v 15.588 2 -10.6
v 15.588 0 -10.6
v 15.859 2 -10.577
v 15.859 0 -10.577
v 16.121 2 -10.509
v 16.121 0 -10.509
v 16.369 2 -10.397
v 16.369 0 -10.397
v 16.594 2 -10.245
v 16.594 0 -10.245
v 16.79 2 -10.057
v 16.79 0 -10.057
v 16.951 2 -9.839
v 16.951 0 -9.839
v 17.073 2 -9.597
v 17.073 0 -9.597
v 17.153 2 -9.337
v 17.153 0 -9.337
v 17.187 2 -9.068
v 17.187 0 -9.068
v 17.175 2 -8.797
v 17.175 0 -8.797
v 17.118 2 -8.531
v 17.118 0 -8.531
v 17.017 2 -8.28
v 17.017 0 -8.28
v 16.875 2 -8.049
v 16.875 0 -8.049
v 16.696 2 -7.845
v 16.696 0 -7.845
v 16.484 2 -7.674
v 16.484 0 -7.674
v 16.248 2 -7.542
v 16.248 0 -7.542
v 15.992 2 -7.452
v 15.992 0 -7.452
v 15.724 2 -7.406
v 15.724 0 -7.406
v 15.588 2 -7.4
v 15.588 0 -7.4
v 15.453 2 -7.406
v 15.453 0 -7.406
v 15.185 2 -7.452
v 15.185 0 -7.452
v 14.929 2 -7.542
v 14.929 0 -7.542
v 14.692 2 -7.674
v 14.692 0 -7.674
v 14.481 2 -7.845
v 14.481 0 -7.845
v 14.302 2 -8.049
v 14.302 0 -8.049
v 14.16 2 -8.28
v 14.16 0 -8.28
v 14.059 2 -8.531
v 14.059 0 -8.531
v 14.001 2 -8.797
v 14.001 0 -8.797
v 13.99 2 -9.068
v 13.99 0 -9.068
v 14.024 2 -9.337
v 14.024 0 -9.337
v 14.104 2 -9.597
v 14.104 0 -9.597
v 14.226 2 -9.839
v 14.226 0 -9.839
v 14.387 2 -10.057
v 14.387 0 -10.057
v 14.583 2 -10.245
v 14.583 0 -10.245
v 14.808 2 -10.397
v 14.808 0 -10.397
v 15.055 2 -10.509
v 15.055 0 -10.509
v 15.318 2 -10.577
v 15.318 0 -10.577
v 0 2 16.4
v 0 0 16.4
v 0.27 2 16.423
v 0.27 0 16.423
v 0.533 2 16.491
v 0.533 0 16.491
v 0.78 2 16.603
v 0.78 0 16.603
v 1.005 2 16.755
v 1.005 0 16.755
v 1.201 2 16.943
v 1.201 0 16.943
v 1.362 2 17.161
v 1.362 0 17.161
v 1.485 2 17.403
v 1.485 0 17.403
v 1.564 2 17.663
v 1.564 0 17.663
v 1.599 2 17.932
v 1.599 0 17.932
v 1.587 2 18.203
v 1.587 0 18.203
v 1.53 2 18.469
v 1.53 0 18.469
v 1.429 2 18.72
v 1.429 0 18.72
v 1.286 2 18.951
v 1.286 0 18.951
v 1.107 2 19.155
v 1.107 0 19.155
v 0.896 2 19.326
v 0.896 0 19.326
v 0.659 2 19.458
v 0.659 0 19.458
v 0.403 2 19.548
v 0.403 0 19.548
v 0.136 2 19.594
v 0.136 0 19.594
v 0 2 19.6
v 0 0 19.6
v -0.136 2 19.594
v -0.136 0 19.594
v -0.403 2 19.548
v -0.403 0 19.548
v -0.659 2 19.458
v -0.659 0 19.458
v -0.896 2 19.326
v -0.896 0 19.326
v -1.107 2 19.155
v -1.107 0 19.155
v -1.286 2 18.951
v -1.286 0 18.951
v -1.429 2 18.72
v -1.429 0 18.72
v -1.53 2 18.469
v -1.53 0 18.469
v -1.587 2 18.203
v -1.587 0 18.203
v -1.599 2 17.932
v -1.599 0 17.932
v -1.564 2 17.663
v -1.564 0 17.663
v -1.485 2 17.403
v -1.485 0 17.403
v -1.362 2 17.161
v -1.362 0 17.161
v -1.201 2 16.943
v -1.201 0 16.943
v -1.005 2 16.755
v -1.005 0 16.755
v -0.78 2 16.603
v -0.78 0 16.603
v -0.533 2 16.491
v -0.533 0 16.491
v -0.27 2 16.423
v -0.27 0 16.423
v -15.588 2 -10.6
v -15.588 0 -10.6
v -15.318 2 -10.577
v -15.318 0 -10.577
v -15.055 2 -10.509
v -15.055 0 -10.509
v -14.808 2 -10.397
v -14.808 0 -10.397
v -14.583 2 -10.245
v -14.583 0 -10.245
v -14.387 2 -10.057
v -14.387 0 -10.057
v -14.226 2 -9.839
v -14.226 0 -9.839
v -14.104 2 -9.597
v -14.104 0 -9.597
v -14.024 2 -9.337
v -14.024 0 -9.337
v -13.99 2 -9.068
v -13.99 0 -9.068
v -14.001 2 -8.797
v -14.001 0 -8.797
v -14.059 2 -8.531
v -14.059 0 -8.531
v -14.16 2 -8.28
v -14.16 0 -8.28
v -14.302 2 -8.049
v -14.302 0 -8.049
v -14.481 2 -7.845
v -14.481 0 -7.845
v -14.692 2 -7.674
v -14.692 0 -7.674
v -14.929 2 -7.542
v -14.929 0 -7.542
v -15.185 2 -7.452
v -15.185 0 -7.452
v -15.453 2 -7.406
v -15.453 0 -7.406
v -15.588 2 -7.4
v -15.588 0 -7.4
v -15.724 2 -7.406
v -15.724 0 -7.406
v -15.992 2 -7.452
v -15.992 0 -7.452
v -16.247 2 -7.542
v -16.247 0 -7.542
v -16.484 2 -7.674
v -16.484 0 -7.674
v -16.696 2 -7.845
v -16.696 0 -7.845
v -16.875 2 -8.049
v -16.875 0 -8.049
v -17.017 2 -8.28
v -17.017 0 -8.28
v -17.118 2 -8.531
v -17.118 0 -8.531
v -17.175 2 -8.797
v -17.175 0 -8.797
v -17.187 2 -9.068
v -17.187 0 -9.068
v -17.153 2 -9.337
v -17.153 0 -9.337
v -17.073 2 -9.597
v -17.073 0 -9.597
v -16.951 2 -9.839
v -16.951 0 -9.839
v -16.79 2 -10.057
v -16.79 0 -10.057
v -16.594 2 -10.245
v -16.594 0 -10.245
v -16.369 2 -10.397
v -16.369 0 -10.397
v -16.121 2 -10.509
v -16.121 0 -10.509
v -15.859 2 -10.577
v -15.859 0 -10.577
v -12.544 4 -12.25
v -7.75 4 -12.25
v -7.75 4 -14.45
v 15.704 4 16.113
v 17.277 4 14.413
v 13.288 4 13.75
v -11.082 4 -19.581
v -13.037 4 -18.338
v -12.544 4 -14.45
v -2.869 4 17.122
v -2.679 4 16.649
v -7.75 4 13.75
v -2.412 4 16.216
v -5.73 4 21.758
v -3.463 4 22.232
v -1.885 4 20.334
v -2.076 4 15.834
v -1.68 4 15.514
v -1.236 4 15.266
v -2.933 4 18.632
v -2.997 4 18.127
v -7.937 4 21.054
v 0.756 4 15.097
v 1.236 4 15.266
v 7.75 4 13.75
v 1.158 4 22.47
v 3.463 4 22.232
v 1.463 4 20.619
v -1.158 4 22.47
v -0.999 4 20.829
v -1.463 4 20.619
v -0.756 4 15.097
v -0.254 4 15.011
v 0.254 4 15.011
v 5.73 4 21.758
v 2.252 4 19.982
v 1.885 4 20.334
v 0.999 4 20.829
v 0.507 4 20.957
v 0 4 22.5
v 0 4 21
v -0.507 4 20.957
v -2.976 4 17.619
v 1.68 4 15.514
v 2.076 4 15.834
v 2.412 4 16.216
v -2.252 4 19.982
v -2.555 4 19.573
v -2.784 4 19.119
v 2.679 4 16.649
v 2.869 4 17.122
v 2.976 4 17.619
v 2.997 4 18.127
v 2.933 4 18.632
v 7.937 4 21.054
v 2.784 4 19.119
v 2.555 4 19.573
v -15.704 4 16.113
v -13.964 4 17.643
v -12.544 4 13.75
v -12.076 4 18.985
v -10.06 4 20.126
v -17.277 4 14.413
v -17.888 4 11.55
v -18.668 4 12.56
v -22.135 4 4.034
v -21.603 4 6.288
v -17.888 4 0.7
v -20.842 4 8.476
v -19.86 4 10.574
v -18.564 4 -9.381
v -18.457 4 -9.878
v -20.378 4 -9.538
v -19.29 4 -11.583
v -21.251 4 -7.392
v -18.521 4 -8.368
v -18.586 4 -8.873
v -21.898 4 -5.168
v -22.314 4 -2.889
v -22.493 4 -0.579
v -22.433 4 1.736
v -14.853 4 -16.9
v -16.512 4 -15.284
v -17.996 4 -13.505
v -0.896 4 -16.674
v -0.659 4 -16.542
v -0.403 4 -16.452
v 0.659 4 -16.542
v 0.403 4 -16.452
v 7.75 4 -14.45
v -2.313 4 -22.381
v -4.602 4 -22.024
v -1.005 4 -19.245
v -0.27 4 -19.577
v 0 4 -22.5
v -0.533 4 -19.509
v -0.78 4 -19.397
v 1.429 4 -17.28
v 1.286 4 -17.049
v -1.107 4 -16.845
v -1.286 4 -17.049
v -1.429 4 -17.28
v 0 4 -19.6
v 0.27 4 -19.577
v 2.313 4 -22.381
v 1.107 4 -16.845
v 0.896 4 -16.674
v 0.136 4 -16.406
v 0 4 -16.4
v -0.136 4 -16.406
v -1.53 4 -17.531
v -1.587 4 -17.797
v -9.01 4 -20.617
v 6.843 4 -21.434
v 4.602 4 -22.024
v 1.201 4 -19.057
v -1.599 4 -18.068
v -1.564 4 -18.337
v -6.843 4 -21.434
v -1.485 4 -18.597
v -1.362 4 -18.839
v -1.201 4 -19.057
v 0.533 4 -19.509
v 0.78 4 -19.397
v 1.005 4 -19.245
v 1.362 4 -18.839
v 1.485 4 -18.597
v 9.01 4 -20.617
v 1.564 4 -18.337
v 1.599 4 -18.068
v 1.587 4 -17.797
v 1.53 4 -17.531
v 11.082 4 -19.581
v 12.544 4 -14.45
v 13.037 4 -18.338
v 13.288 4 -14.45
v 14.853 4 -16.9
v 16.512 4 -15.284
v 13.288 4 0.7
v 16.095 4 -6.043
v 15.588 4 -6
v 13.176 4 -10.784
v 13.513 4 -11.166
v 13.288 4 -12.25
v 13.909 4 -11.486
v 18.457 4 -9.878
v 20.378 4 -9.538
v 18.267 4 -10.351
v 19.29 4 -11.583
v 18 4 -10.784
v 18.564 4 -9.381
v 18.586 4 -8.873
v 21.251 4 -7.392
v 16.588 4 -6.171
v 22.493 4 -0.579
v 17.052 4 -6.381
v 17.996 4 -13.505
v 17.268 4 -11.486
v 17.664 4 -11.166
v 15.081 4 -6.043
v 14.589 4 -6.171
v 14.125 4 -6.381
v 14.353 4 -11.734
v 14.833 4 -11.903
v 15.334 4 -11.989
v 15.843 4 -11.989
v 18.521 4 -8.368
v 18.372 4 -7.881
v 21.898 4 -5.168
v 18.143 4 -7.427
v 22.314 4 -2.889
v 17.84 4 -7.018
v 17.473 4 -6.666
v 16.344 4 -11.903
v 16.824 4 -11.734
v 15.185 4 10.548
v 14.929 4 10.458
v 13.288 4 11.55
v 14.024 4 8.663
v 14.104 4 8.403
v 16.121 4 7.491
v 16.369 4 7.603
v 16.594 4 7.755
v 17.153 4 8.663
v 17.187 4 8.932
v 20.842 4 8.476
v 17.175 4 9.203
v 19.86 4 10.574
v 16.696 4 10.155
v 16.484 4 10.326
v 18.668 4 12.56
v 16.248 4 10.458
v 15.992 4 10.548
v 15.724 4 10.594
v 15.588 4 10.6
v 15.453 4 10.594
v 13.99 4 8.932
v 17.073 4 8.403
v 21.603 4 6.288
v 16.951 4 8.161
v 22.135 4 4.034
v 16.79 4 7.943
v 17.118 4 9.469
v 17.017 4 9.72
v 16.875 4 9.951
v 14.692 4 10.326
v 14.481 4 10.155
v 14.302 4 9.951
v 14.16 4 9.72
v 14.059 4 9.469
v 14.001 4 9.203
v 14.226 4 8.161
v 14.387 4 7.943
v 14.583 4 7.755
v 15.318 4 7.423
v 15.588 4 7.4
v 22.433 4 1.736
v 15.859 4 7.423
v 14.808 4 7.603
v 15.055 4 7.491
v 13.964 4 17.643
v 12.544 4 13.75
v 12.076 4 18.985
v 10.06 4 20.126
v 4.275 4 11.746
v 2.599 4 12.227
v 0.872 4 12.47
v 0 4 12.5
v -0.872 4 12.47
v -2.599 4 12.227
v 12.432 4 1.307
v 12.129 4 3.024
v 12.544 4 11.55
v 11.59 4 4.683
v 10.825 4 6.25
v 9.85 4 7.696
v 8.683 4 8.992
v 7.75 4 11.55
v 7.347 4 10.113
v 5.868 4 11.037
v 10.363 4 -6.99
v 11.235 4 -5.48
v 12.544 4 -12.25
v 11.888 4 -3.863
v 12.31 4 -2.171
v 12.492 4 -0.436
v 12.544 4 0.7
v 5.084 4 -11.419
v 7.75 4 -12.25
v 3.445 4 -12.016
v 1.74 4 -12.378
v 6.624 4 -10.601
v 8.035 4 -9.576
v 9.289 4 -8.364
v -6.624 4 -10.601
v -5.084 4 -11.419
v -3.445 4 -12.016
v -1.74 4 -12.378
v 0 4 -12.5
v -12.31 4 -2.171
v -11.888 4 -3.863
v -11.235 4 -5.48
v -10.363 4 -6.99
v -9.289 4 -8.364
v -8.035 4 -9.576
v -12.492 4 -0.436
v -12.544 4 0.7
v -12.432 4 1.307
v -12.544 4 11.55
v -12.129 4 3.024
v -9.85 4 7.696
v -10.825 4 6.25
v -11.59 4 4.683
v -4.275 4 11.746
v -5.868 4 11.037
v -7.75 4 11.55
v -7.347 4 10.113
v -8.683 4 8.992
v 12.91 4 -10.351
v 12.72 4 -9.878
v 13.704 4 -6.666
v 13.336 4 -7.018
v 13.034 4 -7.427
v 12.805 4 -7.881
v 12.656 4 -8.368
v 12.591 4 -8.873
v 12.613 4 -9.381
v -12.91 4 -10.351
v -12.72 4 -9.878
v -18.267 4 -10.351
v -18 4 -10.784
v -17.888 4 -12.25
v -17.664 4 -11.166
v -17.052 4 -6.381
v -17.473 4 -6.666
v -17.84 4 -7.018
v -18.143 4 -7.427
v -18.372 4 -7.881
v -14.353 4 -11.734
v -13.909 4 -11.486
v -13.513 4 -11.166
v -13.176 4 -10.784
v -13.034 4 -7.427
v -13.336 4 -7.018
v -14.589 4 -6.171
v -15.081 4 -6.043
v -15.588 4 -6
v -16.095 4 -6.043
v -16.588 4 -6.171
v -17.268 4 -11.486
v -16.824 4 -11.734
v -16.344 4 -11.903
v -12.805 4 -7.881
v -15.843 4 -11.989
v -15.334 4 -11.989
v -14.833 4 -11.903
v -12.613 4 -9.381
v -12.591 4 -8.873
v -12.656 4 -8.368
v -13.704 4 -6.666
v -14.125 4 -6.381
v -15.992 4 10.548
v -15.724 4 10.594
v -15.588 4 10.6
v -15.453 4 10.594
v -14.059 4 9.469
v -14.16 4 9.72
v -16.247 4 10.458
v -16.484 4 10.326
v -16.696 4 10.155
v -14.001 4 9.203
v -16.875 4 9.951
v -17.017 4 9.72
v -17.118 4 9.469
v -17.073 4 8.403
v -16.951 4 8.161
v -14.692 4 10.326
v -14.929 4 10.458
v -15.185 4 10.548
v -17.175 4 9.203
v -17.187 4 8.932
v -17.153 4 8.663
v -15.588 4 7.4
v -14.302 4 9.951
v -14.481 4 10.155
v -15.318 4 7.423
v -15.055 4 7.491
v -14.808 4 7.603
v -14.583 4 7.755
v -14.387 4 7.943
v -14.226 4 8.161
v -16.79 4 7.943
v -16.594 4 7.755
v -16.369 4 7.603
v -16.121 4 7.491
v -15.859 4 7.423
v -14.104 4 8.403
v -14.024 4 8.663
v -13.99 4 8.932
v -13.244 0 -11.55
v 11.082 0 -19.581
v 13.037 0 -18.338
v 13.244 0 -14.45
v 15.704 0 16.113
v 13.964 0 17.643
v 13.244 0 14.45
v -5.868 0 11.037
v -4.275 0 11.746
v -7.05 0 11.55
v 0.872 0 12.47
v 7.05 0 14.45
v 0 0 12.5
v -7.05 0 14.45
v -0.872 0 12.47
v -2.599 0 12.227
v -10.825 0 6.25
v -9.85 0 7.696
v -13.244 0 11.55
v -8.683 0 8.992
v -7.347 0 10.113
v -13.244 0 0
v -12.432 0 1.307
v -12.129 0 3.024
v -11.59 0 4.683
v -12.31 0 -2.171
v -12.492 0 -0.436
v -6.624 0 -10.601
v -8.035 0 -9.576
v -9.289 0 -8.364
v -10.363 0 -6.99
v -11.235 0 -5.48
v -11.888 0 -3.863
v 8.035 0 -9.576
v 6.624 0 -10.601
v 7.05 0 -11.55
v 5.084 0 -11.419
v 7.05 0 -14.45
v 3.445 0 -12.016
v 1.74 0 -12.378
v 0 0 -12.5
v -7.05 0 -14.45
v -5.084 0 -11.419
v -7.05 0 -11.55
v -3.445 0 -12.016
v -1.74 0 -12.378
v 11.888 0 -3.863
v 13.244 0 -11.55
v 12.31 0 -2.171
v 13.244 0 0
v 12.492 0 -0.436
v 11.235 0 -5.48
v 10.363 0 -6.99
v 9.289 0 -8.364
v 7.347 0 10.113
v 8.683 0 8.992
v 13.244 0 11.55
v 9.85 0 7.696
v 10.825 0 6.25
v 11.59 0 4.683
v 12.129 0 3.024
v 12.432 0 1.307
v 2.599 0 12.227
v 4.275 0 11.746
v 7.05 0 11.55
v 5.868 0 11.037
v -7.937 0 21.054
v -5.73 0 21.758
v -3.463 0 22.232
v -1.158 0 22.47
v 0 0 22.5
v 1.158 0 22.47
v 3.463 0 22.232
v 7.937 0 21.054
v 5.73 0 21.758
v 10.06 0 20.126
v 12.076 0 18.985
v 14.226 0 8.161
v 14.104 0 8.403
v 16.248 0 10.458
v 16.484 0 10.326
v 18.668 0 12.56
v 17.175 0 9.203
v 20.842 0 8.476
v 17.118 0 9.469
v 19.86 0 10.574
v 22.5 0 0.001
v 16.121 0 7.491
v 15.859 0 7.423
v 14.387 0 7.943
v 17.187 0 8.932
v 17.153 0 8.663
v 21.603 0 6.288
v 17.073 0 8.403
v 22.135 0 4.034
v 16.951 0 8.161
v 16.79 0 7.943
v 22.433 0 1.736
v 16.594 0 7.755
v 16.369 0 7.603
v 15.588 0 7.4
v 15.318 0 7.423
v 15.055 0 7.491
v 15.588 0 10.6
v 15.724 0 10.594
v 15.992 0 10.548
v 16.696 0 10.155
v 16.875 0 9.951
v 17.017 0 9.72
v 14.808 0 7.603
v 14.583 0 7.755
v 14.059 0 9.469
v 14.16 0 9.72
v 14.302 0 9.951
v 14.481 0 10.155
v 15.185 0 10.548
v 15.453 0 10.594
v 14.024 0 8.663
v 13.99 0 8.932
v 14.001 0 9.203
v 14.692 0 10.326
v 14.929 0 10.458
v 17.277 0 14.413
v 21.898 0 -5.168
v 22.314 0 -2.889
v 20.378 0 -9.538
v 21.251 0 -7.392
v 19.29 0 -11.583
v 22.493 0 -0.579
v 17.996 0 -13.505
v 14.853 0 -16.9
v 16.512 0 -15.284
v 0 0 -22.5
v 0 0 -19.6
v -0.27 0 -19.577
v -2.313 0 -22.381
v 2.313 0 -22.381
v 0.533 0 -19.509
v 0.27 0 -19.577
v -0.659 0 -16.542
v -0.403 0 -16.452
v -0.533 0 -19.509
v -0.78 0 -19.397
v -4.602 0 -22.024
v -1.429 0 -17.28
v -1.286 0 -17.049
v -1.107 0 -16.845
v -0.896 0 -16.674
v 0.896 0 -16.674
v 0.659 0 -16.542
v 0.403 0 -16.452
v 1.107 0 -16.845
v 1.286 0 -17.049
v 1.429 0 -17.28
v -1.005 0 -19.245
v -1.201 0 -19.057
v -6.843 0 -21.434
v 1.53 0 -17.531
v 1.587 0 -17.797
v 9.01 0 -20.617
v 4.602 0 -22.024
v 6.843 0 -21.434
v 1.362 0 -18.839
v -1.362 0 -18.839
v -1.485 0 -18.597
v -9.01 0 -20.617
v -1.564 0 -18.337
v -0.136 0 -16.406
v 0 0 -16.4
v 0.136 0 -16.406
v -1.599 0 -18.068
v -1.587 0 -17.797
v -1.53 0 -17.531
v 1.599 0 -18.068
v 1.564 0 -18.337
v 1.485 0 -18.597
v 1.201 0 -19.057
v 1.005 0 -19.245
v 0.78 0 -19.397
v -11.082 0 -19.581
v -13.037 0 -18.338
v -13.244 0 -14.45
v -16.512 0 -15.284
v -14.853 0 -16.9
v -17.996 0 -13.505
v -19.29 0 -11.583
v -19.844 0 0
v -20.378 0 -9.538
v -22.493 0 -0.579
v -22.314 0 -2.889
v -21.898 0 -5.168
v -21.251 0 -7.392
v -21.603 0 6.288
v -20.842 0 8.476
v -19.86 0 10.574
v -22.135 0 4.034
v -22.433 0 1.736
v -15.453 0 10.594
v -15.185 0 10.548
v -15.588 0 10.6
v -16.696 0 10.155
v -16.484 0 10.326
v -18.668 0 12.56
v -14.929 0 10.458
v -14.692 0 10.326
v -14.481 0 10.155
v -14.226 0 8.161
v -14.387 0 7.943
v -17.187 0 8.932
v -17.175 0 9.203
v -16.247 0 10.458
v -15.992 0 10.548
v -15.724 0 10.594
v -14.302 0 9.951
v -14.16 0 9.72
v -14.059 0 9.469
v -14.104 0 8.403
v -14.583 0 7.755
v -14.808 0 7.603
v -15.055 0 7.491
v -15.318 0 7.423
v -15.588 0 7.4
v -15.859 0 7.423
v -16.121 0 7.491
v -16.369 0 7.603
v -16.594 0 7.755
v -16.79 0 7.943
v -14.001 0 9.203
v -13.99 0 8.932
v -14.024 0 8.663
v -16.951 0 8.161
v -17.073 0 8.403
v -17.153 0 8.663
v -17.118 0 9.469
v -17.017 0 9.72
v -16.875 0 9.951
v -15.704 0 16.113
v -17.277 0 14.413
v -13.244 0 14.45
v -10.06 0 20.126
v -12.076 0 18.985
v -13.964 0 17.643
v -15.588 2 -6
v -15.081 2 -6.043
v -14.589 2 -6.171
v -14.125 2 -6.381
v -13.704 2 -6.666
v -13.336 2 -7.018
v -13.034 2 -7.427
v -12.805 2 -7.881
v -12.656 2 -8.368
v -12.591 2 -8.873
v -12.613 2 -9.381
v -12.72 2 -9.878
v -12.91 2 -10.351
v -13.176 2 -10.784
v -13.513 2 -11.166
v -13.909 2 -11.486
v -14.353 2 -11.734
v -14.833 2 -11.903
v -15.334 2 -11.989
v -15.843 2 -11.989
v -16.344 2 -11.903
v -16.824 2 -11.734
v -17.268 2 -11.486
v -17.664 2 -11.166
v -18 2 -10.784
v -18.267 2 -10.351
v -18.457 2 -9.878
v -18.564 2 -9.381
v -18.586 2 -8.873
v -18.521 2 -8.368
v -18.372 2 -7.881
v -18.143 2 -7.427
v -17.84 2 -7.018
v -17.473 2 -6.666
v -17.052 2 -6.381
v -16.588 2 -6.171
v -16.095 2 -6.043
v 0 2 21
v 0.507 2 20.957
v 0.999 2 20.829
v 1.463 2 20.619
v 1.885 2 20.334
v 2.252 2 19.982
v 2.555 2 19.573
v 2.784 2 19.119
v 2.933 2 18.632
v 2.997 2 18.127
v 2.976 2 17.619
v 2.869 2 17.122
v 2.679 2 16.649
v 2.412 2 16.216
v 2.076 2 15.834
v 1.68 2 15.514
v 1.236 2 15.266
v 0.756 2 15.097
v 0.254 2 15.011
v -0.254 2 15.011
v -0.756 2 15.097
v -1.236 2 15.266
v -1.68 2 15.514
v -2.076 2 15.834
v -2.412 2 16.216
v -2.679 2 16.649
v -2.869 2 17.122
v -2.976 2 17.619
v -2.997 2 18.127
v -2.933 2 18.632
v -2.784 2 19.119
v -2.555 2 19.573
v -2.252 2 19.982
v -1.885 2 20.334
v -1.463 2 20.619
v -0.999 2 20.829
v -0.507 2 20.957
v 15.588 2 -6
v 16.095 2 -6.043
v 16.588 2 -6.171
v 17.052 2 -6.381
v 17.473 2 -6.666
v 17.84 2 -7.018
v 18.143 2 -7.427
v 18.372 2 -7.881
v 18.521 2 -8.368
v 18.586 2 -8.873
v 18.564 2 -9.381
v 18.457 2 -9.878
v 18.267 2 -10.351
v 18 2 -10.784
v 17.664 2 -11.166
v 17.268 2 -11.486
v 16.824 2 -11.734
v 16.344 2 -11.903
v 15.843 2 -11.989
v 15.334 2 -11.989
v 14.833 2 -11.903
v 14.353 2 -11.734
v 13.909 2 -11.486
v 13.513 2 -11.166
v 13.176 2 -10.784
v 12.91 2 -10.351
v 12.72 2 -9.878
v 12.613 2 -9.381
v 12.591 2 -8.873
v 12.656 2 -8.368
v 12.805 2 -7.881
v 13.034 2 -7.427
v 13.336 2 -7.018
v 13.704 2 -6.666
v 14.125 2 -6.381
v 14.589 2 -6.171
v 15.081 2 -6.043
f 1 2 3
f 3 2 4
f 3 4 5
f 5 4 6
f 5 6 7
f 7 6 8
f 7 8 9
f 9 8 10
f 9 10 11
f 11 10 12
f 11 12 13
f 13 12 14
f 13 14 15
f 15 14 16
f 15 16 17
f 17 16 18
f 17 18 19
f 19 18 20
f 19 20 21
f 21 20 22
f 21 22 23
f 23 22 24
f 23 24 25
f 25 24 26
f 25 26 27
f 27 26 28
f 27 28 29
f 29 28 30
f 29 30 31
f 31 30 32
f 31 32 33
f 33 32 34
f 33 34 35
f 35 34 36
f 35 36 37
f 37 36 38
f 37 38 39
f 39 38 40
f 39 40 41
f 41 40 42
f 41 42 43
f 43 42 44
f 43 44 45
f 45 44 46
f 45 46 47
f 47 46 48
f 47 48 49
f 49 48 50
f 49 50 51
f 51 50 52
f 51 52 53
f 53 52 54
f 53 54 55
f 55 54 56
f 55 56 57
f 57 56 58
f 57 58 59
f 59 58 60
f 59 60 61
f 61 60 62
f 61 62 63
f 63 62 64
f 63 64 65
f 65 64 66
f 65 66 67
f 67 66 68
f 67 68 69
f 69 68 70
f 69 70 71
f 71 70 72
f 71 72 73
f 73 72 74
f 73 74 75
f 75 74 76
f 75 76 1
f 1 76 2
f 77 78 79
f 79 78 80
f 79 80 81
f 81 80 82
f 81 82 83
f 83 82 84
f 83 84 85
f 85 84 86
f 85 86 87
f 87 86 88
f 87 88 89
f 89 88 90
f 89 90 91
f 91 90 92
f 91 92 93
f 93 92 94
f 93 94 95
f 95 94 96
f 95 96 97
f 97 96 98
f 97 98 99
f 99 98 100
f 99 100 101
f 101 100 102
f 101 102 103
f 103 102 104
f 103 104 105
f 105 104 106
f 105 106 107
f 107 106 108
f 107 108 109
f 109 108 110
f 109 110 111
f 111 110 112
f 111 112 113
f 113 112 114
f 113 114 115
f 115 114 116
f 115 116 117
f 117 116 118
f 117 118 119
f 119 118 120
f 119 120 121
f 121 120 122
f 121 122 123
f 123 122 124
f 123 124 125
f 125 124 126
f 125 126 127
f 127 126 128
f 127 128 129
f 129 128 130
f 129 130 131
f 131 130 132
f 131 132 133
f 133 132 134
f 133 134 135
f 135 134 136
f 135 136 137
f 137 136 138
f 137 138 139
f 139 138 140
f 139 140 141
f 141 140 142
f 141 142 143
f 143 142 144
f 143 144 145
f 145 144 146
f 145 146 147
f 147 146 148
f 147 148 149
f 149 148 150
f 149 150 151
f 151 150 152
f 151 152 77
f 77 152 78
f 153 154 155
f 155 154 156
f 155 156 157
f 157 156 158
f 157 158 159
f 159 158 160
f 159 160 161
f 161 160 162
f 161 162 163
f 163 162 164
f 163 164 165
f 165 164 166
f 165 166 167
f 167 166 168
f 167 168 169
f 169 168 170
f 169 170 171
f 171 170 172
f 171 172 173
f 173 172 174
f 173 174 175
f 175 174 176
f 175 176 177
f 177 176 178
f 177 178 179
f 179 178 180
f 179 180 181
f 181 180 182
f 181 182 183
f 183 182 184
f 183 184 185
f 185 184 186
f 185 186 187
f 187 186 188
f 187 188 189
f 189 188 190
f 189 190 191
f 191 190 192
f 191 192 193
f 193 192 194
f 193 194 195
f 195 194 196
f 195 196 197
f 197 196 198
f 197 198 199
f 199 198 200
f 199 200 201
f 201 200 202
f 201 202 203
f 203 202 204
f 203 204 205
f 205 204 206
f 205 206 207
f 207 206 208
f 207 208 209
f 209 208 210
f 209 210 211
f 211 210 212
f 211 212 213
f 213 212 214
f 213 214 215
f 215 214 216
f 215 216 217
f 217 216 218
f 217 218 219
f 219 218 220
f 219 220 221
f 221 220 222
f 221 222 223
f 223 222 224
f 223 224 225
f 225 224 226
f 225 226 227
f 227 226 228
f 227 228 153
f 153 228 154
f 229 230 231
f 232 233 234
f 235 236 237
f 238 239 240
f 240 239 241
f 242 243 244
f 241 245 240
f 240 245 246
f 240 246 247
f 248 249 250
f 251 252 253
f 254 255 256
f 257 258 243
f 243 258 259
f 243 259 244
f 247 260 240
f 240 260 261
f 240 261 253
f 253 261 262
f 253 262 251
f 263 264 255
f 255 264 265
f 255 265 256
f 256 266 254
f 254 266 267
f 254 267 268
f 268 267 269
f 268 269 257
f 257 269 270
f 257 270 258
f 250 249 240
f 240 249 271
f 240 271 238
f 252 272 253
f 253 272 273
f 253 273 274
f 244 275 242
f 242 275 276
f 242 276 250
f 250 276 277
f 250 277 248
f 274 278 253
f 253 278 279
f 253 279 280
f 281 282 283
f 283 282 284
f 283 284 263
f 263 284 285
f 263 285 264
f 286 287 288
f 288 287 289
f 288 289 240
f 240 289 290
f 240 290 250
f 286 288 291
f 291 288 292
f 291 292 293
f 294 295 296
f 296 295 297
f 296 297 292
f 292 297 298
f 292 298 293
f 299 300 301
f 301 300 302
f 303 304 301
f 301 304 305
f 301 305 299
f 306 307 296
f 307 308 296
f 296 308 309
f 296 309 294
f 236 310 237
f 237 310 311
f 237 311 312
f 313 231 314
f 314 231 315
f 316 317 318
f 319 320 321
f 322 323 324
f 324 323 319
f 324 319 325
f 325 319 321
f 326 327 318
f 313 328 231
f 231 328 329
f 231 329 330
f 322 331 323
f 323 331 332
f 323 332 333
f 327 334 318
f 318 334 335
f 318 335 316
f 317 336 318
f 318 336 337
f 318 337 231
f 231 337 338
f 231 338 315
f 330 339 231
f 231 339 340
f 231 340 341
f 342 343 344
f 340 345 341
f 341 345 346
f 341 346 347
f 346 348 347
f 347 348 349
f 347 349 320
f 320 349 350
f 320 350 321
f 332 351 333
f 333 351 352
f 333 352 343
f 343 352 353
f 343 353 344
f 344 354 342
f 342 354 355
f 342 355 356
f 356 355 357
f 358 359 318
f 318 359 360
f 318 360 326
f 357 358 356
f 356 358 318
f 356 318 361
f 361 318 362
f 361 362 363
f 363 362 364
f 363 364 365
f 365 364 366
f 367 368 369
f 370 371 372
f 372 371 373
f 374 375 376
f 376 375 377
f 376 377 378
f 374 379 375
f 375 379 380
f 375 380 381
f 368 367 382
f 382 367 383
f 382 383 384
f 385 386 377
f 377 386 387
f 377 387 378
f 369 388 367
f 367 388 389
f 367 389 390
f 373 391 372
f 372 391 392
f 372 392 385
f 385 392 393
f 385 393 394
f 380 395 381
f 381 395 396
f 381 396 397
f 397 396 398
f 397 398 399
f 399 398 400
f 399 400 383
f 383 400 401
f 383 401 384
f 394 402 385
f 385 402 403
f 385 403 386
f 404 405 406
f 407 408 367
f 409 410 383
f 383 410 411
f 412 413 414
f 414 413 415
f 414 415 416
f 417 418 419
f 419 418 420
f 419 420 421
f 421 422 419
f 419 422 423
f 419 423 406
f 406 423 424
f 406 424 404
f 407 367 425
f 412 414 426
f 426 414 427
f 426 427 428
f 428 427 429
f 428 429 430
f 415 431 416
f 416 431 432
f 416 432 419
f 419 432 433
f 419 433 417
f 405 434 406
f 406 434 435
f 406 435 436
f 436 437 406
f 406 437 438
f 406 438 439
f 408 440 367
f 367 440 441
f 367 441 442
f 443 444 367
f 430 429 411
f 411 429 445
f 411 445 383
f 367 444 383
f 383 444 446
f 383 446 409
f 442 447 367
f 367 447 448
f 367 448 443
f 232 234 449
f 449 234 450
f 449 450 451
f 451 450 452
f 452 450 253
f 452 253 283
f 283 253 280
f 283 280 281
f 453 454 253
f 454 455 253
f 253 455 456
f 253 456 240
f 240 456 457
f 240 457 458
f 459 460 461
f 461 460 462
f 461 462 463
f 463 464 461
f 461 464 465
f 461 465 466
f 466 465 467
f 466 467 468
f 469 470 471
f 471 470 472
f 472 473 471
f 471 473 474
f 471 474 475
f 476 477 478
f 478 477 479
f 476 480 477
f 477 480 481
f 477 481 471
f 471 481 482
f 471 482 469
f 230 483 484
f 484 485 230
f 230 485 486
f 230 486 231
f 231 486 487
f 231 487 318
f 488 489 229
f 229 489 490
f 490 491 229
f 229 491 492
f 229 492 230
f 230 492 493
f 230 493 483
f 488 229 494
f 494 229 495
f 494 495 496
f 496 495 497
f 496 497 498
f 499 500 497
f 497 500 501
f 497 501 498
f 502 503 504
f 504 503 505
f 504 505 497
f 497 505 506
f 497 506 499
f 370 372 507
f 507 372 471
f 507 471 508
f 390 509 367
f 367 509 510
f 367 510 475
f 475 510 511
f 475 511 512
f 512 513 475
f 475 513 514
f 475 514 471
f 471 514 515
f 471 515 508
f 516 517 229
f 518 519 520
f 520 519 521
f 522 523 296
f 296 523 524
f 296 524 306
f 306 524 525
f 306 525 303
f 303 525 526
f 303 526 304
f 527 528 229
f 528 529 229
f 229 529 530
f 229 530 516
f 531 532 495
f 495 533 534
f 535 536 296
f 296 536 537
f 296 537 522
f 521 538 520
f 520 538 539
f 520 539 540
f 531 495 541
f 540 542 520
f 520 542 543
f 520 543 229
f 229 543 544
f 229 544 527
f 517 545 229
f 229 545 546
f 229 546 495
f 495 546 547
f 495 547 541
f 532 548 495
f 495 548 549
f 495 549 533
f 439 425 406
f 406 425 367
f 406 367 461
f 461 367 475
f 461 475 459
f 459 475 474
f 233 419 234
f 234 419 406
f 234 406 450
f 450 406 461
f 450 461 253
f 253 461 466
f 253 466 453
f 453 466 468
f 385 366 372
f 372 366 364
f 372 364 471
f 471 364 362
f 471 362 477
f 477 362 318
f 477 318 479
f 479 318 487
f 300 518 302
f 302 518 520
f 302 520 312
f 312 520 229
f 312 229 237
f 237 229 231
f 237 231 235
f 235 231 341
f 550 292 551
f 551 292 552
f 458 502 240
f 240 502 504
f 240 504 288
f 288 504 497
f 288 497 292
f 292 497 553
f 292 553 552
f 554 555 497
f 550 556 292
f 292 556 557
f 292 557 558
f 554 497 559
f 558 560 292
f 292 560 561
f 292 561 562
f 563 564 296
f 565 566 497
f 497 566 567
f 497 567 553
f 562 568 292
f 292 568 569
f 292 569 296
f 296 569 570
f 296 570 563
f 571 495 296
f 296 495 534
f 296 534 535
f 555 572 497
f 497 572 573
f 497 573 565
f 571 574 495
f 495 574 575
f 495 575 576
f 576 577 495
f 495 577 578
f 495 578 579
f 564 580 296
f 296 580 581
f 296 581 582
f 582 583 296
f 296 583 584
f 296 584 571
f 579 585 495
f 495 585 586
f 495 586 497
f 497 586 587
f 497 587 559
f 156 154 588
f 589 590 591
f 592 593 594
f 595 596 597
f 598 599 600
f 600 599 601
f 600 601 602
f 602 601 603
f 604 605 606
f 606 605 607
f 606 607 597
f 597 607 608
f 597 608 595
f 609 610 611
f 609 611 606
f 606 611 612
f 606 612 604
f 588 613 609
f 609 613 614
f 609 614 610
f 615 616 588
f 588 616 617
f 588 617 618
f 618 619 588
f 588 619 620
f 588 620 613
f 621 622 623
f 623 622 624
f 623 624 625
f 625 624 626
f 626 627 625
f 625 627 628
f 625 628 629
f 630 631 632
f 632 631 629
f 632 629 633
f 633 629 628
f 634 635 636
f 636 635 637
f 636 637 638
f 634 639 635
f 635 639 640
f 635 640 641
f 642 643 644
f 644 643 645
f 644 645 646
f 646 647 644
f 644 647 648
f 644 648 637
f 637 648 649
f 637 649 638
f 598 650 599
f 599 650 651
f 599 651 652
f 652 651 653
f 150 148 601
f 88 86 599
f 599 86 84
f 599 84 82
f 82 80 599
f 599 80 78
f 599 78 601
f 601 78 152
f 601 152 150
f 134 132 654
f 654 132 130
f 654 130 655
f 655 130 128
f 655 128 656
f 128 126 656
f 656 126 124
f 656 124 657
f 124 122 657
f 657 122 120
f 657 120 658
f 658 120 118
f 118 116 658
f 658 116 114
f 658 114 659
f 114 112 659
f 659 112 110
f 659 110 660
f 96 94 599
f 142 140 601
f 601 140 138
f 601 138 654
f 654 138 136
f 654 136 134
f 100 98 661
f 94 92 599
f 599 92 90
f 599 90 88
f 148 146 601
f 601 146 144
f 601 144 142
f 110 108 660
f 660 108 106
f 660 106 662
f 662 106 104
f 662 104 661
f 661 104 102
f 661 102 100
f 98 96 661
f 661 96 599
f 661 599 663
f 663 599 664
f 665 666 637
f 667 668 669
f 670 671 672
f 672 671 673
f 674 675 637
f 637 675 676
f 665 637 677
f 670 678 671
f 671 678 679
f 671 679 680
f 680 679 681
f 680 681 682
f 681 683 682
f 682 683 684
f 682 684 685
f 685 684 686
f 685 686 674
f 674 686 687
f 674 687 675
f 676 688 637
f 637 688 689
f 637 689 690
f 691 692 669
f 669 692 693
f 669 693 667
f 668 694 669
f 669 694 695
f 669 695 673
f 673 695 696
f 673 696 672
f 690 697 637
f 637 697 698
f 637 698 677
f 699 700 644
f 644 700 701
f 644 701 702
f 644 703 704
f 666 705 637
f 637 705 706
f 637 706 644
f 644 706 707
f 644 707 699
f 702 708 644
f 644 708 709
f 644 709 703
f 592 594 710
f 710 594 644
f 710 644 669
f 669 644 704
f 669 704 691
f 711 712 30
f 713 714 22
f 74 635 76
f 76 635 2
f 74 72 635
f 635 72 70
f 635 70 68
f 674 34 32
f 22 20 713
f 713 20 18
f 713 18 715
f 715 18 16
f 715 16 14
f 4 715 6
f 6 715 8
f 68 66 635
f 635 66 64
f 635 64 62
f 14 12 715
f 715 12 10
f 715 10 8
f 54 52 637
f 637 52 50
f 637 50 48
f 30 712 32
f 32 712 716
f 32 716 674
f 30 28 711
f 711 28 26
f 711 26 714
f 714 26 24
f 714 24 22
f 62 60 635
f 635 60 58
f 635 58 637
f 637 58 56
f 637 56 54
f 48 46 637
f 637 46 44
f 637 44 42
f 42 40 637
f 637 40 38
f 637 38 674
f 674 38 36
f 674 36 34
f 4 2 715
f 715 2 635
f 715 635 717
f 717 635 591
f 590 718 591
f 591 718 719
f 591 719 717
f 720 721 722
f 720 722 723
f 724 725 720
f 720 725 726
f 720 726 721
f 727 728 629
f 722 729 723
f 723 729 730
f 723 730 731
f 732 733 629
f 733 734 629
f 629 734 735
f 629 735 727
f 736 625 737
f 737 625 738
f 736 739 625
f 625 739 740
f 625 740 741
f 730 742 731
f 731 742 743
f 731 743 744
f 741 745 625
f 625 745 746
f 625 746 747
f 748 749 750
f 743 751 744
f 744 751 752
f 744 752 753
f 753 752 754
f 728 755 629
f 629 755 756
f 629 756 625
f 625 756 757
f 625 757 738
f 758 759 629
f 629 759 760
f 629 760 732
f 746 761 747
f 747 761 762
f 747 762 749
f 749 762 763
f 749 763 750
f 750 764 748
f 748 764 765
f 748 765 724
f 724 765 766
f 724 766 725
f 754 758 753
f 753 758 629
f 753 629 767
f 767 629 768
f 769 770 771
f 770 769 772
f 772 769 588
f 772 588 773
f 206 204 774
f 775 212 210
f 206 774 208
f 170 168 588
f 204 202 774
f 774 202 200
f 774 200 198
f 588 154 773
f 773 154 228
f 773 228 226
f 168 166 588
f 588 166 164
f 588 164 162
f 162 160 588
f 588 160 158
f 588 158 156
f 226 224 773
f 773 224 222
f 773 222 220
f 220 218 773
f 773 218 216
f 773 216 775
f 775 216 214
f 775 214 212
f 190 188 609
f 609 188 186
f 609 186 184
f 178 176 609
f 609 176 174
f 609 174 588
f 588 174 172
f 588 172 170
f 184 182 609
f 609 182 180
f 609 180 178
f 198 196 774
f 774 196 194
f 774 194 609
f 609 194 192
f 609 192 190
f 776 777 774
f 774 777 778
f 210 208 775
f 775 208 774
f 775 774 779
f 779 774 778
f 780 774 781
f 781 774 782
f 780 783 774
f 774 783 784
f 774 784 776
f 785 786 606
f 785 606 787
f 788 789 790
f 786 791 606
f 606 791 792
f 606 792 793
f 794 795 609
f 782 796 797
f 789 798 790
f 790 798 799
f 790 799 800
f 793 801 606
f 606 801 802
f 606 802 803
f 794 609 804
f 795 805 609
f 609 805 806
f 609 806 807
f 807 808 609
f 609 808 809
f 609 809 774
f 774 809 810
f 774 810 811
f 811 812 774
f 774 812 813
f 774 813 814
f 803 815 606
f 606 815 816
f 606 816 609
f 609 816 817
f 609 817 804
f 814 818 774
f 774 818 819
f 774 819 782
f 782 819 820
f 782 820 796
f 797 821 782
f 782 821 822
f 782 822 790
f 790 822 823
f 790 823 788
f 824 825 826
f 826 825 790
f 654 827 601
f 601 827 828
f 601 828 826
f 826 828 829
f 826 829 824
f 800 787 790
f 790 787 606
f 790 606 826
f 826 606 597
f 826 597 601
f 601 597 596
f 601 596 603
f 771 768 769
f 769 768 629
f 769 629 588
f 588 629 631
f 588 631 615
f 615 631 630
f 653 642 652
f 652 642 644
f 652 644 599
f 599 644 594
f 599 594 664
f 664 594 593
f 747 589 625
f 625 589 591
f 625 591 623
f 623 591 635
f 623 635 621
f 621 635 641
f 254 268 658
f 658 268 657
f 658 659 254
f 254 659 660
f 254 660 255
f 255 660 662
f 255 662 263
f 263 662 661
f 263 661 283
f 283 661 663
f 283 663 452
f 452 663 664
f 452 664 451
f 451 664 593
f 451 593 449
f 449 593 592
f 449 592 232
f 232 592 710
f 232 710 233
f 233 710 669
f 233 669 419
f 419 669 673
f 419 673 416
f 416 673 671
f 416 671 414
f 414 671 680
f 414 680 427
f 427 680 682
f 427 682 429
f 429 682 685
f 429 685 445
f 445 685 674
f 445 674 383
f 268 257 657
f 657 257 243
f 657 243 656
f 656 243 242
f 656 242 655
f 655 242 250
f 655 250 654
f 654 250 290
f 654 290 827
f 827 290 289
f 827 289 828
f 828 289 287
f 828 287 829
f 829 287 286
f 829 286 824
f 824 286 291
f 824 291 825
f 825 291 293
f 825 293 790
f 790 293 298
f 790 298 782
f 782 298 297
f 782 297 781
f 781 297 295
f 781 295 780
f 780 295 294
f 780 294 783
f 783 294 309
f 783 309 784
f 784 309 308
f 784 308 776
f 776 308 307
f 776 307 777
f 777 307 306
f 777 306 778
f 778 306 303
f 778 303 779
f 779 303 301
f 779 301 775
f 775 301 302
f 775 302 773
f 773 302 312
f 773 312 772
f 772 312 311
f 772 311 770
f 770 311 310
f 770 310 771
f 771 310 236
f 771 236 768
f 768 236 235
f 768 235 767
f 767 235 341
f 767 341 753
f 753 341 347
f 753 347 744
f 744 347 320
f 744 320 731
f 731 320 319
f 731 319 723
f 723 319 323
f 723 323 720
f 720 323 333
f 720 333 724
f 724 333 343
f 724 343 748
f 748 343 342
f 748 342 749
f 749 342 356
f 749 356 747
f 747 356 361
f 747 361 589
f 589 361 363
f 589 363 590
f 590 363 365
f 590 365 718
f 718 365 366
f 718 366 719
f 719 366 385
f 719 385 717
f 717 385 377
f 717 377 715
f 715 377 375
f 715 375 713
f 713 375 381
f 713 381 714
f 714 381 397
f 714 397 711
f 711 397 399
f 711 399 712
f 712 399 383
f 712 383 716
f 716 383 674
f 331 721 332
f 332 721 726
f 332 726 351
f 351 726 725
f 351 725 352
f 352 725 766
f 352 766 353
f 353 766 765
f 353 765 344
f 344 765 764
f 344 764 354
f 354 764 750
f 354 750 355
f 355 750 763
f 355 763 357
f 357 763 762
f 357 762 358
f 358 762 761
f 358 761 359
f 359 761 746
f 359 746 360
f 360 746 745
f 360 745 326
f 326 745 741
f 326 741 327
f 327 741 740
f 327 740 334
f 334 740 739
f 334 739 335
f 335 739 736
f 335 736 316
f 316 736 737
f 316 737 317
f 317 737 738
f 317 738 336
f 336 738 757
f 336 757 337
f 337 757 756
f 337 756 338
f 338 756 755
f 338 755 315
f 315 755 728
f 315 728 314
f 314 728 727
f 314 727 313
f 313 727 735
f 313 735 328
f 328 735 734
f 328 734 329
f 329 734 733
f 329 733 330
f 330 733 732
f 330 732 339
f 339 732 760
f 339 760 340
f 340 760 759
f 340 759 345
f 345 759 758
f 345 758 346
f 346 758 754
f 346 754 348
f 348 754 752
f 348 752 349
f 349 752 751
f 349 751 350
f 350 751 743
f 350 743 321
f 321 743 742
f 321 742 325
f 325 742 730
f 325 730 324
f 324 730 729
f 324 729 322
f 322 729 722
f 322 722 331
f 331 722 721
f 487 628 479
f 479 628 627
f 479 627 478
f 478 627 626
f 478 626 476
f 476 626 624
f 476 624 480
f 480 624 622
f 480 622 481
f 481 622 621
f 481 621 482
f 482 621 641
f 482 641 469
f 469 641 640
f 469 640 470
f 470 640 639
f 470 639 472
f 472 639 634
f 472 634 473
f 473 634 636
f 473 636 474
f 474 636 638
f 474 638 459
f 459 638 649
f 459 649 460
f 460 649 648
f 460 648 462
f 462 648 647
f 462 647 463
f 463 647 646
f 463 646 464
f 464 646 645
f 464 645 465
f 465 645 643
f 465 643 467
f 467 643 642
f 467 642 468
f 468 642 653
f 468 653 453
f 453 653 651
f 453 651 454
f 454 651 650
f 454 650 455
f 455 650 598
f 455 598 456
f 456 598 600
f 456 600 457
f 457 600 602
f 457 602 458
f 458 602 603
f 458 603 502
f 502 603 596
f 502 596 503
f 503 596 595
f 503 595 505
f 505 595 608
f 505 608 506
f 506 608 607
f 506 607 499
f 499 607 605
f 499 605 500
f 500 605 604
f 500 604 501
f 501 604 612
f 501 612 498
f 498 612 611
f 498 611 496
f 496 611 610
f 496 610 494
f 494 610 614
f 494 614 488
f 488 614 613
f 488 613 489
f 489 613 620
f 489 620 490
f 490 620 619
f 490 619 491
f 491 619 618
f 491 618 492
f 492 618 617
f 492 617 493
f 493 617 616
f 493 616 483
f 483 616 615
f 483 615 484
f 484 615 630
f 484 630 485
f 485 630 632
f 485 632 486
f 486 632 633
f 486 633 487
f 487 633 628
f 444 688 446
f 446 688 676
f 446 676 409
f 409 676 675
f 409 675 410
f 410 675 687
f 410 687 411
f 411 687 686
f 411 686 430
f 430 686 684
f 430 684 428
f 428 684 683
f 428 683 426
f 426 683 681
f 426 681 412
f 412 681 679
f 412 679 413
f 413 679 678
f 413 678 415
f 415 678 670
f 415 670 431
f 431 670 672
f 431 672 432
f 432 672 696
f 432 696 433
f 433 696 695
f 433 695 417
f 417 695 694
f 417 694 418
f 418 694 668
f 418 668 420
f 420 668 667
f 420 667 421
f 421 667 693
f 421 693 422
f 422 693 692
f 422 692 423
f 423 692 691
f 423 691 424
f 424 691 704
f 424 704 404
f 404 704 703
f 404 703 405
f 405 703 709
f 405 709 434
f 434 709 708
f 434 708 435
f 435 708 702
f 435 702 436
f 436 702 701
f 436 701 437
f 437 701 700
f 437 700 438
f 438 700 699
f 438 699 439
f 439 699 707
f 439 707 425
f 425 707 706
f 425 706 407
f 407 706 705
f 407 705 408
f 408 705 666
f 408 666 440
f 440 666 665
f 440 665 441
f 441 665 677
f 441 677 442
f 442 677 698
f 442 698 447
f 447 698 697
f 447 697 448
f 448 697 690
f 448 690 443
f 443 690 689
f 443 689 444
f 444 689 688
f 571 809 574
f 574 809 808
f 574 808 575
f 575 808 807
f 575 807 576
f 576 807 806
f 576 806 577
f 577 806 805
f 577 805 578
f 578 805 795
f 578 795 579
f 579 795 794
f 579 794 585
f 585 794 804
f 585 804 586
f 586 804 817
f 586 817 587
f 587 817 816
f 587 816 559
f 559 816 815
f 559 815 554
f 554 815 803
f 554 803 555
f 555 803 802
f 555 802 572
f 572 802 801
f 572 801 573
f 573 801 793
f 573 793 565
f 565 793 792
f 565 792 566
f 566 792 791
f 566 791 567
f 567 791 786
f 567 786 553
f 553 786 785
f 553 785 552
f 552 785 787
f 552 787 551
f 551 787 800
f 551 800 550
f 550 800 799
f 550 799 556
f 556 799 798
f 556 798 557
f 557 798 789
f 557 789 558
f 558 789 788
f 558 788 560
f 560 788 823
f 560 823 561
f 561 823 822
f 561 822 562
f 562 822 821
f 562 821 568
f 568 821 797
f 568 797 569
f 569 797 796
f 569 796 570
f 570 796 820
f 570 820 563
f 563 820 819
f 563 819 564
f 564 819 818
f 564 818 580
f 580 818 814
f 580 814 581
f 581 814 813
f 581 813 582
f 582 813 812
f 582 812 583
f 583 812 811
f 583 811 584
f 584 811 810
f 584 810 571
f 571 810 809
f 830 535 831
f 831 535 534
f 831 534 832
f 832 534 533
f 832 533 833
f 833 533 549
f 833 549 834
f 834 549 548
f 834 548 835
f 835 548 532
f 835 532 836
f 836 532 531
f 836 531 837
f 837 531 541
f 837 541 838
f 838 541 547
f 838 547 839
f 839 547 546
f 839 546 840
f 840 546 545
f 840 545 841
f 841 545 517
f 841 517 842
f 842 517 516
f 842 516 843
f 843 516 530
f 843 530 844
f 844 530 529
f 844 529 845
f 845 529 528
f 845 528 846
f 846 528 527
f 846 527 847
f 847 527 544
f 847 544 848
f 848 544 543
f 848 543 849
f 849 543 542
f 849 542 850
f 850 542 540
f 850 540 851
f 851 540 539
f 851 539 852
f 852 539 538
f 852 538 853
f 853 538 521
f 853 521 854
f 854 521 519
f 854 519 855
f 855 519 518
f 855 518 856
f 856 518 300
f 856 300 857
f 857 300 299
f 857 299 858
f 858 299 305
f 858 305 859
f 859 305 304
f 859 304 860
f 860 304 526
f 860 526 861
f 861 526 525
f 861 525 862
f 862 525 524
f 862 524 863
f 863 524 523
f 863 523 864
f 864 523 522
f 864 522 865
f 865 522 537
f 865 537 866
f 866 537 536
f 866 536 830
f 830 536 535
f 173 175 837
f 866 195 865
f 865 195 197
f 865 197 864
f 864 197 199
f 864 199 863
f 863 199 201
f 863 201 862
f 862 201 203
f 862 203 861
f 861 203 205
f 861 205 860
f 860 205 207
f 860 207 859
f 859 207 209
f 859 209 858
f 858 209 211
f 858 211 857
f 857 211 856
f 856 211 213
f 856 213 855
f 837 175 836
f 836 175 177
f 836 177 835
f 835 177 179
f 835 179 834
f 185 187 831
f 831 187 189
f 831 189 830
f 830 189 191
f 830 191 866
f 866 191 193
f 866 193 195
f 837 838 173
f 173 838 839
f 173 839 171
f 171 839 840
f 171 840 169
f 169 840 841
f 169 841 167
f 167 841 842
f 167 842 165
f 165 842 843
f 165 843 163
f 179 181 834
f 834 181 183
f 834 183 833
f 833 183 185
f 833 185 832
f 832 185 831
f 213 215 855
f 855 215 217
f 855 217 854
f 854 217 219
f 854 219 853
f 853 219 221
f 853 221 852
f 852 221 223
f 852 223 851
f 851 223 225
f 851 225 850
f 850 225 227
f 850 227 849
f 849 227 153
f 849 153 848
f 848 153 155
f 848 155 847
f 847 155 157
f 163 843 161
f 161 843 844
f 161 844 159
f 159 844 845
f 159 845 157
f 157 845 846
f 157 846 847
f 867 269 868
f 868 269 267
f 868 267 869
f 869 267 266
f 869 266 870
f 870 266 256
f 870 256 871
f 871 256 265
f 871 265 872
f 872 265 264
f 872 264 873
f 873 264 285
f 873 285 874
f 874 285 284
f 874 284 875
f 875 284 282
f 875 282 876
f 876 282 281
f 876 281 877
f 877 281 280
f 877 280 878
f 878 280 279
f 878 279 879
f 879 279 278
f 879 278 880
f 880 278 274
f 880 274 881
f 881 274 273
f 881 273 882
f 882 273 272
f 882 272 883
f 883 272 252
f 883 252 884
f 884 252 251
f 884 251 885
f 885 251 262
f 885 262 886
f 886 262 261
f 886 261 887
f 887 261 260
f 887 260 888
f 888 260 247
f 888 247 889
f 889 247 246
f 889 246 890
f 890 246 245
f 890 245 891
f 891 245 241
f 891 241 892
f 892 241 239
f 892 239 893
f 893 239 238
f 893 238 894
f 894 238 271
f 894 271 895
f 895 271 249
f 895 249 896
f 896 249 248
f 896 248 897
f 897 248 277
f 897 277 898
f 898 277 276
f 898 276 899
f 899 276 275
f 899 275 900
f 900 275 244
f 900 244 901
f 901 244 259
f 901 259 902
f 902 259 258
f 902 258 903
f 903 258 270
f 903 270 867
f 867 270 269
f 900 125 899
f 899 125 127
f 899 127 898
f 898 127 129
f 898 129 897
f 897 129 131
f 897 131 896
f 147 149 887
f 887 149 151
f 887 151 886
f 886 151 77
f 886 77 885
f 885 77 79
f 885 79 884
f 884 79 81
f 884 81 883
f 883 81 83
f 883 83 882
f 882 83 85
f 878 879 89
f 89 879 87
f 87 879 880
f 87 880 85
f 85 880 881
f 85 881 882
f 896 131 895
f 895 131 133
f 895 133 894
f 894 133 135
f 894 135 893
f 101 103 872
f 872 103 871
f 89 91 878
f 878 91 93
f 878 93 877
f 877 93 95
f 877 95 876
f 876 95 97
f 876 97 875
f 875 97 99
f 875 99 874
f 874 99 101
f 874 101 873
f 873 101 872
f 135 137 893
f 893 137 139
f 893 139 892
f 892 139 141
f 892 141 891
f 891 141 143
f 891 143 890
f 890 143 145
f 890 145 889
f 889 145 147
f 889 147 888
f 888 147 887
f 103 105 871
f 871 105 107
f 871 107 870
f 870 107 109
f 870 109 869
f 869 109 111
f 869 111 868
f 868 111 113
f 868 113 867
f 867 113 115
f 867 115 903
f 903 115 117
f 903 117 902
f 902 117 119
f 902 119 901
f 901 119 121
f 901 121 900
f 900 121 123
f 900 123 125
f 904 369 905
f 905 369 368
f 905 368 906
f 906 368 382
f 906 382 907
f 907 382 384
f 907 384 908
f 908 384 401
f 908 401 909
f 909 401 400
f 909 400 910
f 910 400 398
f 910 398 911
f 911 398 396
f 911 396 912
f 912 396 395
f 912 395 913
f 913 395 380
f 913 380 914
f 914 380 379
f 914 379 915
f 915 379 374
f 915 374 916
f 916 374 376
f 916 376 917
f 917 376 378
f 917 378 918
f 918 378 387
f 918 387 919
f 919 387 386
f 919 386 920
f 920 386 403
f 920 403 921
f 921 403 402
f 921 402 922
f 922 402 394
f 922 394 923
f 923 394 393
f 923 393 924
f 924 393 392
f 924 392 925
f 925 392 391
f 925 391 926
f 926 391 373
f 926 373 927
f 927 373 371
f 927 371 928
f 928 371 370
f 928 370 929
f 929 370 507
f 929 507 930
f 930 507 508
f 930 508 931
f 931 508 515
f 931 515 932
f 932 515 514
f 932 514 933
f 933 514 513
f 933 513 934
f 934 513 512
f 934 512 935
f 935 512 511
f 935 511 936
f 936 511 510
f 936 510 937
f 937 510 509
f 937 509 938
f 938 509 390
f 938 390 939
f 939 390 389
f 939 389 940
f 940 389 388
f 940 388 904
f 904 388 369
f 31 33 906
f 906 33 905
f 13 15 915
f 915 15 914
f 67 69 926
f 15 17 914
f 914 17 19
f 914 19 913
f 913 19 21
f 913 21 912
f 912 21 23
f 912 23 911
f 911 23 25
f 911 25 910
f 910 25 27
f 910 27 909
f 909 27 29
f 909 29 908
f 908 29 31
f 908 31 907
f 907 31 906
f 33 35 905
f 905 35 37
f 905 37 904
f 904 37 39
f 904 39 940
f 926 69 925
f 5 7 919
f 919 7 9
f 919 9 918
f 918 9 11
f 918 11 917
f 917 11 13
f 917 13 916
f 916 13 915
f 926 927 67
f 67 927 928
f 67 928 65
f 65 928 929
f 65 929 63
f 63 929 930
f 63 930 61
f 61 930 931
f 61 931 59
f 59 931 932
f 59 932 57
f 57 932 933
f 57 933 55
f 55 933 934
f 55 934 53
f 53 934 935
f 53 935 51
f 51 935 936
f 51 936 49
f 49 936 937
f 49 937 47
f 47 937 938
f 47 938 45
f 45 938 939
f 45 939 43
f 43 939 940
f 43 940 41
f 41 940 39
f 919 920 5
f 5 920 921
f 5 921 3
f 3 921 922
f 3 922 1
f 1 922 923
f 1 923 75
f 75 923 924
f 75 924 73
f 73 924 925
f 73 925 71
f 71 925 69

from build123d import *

# Parameters (mm, degrees)
SKETCH1_R           = 22.5
SKETCH1_R_2         = 1.6
SKETCH1_R_3         = 12.5
BOSS_EXTRUDE1_DEPTH = 4
SKETCH2_R           = 3
CUT_EXTRUDE1_DEPTH  = 2


with BuildPart() as part:
    # Sketch1 → Boss-Extrude1 (new body)
    with BuildSketch(Plane(origin=(0, 0, 0), x_dir=(1, 0, 0), z_dir=(0, 1, 0))):
        with Locations(Location((0, 0, 0), (0, 0, 270))):
            Circle(SKETCH1_R)
        with Locations(Location((0, 18, 0), (0, 0, 270))):
            Circle(SKETCH1_R_2, mode=Mode.SUBTRACT)
        with Locations(Location((15.588457268, 9, 0), (0, 0, 270))):
            Circle(SKETCH1_R_2, mode=Mode.SUBTRACT)
        with Locations(Location((15.588457268, -9, 0), (0, 0, 270))):
            Circle(SKETCH1_R_2, mode=Mode.SUBTRACT)
        with Locations(Location((0, -18, 0), (0, 0, 270))):
            Circle(SKETCH1_R_2, mode=Mode.SUBTRACT)
        with Locations(Location((-15.588457268, -9, 0), (0, 0, 270))):
            Circle(SKETCH1_R_2, mode=Mode.SUBTRACT)
        with Locations(Location((-15.588457268, 9, 0), (0, 0, 270))):
            Circle(SKETCH1_R_2, mode=Mode.SUBTRACT)
        with Locations(Location((0, 0, 0), (0, 0, 270))):
            Circle(SKETCH1_R_3, mode=Mode.SUBTRACT)
    extrude(amount=BOSS_EXTRUDE1_DEPTH)

    # Sketch2 → Cut-Extrude1 (cut)
    with BuildSketch(Plane(origin=(0, 4, 0), x_dir=(1, 0, 0), z_dir=(0, 1, 0))):
        with Locations(Location((-15.588457268, 9, 0), (0, 0, 270))):
            Circle(SKETCH2_R)
        with Locations(Location((15.588457268, 9, 0), (0, 0, 270))):
            Circle(SKETCH2_R)
        with Locations(Location((0, -18, 0), (0, 0, 270))):
            Circle(SKETCH2_R)
    extrude(amount=-CUT_EXTRUDE1_DEPTH, mode=Mode.SUBTRACT)


solid = part.part
